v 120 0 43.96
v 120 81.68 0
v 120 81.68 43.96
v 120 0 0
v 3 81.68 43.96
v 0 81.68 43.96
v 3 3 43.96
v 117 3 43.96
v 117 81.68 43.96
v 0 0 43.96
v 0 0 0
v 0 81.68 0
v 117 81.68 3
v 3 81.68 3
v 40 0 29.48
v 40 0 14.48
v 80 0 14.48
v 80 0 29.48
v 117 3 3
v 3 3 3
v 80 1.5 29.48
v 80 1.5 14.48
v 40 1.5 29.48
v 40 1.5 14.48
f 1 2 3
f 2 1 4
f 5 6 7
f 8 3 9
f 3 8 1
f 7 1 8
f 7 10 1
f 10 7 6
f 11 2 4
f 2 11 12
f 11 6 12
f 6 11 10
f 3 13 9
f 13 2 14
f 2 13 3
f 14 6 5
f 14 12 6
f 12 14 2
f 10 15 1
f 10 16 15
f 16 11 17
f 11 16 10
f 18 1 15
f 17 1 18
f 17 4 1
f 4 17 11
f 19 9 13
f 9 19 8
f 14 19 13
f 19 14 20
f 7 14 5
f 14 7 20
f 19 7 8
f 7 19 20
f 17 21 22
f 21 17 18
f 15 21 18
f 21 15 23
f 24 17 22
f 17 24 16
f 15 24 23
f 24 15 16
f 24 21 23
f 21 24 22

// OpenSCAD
/* doodle-meta {"version":1,"parameters":{"width":{"label":"Overall width","description":"Changes the body width","unit":"mm","feature":"body_width"},"depth":{"label":"Overall depth","description":"Changes the body depth","unit":"mm","feature":"body_depth"},"height":{"label":"Overall height","description":"Changes the body height","unit":"mm","feature":"body_height"},"wall_thickness":{"label":"Wall thickness","description":"Thickness of the enclosure walls","unit":"mm","feature":"wall"},"window_width":{"label":"Window width","description":"Width of the front window cutout","unit":"mm","feature":"window"},"window_height":{"label":"Window height","description":"Height of the front window cutout","unit":"mm","feature":"window"},"window_center_z":{"label":"Window center height","description":"Vertical position of the window center from the bottom","unit":"mm","feature":"window"}},"features":{"body_width":{"kind":"dimension","axis":"x","label":"Overall width"},"body_depth":{"kind":"dimension","axis":"y","label":"Overall depth"},"body_height":{"kind":"dimension","axis":"z","label":"Overall height"},"wall":{"kind":"region","label":"Wall thickness","min":[0,0,0],"max":[{"parameter":"width","scale":0.5,"offset":0},{"parameter":"depth","scale":0.5,"offset":0},{"parameter":"height","scale":1,"offset":0}]},"window":{"kind":"region","label":"Front window","min":[{"parameter":"width","scale":0.5,"offset":-0.2475},{"parameter":"depth","scale":0,"offset":0},{"parameter":"window_center_z","scale":1,"offset":-0.2924}],"max":[{"parameter":"width","scale":0.5,"offset":0.2475},{"parameter":"depth","scale":1,"offset":0},{"parameter":"window_center_z","scale":1,"offset":0.2924}]}}} */

// Top-level parameters (user-editable)
width = 120.0;
depth = 81.68;
height = 43.96;
wall_thickness = 3.0;
window_width = 40.0;
window_height = 15.0;
window_center_z = 21.98;

// Derived constants (not user-editable)
eps = 0.01;

// Main design
module enclosure() {
    difference() {
        // Outer solid box
        cube([width, depth, height], center=false);
        
        // Internal cavity for open-top shell
        // Cavity starts at wall_thickness from bottom, sides, and back
        // Top is open (no top wall)
        translate([wall_thickness, wall_thickness, wall_thickness]) {
            cube([width - 2*wall_thickness, depth - wall_thickness, height - wall_thickness], center=false);
        }
        
        // Front window cutout
        // Centered in X, centered in Z at window_center_z
        // Cuts through the front wall (Y from -eps to wall_thickness+eps)
        translate([width/2, -eps, window_center_z]) {
            cube([window_width, wall_thickness + 2*eps, window_height], center=true);
        }
    }
}

// Instantiate the design
enclosure();
